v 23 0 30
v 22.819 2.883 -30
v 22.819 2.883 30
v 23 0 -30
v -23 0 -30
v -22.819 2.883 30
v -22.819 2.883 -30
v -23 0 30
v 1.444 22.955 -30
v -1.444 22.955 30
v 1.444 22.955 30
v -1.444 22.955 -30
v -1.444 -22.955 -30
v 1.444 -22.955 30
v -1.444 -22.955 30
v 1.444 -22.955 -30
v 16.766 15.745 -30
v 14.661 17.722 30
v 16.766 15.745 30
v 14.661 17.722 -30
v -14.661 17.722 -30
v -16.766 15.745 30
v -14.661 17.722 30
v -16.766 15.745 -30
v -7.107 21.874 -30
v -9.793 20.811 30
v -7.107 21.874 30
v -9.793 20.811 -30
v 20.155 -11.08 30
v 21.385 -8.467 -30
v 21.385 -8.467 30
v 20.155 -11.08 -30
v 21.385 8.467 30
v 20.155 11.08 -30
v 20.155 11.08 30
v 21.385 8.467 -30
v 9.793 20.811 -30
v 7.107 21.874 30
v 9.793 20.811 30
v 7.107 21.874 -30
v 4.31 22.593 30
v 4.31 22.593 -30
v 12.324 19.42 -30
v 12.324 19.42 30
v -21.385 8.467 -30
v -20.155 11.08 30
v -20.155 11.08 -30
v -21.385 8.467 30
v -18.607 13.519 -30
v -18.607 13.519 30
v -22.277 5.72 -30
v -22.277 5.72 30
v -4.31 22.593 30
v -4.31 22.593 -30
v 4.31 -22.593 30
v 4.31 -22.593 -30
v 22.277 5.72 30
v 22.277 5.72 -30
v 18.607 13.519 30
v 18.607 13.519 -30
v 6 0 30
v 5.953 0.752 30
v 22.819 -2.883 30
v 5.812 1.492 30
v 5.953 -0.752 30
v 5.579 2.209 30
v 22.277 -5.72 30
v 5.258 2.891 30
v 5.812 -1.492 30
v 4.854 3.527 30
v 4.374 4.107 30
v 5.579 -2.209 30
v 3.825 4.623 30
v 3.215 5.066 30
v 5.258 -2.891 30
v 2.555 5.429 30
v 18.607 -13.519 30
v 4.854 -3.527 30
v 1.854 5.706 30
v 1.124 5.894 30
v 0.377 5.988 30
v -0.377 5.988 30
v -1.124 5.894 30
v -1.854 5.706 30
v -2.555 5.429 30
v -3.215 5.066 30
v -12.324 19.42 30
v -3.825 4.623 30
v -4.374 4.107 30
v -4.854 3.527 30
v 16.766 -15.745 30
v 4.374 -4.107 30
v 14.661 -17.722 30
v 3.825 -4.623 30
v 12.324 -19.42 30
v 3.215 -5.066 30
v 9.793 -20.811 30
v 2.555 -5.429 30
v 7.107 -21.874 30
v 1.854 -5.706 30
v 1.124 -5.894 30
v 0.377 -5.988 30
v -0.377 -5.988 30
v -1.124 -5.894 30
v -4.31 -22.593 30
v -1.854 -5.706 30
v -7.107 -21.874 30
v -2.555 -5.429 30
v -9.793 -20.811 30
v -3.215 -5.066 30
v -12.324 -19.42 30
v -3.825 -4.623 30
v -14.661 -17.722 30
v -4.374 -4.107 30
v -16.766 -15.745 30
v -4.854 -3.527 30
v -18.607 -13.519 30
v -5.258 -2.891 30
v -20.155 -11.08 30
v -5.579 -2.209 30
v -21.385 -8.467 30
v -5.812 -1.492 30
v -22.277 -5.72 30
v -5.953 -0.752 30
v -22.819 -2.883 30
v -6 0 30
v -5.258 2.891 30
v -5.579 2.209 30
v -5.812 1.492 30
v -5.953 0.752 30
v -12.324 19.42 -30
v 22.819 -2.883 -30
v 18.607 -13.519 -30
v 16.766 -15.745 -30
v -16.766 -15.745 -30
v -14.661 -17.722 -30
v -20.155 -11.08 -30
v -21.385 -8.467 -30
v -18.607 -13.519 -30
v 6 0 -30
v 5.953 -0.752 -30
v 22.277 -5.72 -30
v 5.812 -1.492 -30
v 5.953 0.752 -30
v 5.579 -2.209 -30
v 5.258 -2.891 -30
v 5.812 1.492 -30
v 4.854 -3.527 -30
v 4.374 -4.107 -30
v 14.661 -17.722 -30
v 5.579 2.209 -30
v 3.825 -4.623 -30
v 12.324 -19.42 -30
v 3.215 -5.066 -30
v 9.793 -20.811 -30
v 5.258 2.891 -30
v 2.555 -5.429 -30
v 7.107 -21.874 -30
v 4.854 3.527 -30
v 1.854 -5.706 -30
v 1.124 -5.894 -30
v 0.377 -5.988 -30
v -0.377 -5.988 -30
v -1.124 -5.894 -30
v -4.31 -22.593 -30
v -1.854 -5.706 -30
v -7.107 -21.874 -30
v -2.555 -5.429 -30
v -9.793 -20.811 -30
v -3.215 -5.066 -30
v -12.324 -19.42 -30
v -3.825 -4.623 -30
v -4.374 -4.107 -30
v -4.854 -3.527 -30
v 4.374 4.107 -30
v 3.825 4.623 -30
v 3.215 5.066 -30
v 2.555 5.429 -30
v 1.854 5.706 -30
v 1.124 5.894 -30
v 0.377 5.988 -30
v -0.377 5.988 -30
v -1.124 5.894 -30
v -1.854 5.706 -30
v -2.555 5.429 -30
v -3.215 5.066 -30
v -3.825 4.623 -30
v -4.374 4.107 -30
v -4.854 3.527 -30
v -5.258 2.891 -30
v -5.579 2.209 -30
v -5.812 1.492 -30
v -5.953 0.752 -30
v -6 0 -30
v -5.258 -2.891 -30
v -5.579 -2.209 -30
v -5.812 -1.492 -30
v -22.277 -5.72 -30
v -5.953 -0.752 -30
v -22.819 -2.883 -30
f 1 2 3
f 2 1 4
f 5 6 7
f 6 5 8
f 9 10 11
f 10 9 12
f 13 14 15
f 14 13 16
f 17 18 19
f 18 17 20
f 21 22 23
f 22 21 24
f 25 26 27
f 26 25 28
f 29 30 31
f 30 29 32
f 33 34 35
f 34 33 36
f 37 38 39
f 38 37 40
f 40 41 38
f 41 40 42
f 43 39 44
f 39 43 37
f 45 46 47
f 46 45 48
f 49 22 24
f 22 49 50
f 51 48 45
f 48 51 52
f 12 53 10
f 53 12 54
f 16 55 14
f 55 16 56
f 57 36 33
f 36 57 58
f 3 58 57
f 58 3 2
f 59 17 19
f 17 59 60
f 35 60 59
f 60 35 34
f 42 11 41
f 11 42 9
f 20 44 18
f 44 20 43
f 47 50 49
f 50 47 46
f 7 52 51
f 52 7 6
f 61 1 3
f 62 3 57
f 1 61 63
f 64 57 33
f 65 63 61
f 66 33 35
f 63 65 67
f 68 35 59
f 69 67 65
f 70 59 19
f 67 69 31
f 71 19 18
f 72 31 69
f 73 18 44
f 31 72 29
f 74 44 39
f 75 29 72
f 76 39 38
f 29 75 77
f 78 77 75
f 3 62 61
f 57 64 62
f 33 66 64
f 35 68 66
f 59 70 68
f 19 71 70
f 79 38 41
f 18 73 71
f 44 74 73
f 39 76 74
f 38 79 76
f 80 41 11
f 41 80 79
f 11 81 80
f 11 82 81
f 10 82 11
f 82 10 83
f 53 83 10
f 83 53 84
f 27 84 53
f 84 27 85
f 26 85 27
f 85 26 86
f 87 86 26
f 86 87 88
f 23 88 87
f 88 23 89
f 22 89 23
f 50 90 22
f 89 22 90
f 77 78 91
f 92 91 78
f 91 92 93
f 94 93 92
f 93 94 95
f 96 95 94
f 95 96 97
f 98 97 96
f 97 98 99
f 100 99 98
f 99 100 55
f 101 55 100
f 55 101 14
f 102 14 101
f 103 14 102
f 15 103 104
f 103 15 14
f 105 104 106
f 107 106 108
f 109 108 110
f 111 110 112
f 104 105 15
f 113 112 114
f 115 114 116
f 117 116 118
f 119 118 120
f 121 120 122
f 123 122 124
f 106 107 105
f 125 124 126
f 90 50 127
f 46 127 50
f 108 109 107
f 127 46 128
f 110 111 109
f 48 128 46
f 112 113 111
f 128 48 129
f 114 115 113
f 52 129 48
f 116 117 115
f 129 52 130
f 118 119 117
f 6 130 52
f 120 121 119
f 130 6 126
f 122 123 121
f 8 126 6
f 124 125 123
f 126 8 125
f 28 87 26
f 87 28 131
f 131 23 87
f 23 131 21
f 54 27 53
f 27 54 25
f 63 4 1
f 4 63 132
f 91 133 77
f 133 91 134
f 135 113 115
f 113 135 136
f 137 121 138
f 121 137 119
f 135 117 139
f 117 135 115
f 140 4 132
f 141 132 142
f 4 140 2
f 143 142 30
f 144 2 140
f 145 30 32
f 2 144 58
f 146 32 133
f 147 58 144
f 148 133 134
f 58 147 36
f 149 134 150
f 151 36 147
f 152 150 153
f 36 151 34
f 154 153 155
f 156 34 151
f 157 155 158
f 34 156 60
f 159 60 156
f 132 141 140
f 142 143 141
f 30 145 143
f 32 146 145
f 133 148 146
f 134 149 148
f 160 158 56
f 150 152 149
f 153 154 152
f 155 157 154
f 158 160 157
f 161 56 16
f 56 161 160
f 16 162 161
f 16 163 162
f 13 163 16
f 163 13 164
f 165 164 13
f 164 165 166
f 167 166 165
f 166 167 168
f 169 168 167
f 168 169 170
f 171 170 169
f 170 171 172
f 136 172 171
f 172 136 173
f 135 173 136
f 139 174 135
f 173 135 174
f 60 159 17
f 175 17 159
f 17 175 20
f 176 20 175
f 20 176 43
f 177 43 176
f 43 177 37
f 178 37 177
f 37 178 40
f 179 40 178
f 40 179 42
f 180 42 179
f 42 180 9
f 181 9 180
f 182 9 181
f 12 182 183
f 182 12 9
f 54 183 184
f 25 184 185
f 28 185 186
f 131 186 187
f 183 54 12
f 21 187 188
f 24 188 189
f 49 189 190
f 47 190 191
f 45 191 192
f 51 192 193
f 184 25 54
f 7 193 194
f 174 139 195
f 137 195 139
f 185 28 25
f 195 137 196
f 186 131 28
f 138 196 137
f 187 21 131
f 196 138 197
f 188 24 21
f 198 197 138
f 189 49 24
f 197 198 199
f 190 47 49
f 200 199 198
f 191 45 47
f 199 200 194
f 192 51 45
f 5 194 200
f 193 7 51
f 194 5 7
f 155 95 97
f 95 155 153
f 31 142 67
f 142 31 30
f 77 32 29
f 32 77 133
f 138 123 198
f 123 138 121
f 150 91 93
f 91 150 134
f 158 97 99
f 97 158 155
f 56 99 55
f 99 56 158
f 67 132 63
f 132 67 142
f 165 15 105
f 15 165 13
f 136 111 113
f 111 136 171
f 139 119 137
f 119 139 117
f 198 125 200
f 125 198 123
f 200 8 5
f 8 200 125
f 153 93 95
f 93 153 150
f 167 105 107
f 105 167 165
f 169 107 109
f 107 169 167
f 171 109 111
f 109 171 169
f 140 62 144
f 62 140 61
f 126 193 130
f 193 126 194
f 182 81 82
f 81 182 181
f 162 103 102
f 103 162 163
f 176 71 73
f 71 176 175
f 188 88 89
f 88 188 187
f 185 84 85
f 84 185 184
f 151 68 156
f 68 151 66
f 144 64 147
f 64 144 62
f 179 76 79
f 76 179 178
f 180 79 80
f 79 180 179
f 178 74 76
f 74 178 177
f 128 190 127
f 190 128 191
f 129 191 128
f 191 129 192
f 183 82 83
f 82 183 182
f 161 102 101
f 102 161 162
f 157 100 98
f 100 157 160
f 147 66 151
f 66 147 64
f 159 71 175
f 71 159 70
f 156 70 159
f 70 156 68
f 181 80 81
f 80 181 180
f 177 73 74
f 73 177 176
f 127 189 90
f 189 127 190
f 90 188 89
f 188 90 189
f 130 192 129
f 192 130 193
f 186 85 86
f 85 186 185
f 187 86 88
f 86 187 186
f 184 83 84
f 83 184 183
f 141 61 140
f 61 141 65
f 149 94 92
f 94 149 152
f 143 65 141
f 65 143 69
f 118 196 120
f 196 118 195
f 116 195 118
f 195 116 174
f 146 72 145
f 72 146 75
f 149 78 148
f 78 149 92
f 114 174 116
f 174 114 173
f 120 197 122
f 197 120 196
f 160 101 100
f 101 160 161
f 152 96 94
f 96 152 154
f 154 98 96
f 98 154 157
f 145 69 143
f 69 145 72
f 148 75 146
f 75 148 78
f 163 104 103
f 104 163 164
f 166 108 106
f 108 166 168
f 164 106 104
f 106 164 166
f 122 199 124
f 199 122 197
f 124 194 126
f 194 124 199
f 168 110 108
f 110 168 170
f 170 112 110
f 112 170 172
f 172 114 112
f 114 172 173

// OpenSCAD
$fn = 50;


difference() {
	union() {
		translate(v = [0, 0, -30.0000000000]) {
			cylinder(h = 60, r = 23.0000000000);
		}
	}
	union() {
		translate(v = [0, 0, -100.0000000000]) {
			cylinder(h = 200, r = 6);
		}
	}
}
